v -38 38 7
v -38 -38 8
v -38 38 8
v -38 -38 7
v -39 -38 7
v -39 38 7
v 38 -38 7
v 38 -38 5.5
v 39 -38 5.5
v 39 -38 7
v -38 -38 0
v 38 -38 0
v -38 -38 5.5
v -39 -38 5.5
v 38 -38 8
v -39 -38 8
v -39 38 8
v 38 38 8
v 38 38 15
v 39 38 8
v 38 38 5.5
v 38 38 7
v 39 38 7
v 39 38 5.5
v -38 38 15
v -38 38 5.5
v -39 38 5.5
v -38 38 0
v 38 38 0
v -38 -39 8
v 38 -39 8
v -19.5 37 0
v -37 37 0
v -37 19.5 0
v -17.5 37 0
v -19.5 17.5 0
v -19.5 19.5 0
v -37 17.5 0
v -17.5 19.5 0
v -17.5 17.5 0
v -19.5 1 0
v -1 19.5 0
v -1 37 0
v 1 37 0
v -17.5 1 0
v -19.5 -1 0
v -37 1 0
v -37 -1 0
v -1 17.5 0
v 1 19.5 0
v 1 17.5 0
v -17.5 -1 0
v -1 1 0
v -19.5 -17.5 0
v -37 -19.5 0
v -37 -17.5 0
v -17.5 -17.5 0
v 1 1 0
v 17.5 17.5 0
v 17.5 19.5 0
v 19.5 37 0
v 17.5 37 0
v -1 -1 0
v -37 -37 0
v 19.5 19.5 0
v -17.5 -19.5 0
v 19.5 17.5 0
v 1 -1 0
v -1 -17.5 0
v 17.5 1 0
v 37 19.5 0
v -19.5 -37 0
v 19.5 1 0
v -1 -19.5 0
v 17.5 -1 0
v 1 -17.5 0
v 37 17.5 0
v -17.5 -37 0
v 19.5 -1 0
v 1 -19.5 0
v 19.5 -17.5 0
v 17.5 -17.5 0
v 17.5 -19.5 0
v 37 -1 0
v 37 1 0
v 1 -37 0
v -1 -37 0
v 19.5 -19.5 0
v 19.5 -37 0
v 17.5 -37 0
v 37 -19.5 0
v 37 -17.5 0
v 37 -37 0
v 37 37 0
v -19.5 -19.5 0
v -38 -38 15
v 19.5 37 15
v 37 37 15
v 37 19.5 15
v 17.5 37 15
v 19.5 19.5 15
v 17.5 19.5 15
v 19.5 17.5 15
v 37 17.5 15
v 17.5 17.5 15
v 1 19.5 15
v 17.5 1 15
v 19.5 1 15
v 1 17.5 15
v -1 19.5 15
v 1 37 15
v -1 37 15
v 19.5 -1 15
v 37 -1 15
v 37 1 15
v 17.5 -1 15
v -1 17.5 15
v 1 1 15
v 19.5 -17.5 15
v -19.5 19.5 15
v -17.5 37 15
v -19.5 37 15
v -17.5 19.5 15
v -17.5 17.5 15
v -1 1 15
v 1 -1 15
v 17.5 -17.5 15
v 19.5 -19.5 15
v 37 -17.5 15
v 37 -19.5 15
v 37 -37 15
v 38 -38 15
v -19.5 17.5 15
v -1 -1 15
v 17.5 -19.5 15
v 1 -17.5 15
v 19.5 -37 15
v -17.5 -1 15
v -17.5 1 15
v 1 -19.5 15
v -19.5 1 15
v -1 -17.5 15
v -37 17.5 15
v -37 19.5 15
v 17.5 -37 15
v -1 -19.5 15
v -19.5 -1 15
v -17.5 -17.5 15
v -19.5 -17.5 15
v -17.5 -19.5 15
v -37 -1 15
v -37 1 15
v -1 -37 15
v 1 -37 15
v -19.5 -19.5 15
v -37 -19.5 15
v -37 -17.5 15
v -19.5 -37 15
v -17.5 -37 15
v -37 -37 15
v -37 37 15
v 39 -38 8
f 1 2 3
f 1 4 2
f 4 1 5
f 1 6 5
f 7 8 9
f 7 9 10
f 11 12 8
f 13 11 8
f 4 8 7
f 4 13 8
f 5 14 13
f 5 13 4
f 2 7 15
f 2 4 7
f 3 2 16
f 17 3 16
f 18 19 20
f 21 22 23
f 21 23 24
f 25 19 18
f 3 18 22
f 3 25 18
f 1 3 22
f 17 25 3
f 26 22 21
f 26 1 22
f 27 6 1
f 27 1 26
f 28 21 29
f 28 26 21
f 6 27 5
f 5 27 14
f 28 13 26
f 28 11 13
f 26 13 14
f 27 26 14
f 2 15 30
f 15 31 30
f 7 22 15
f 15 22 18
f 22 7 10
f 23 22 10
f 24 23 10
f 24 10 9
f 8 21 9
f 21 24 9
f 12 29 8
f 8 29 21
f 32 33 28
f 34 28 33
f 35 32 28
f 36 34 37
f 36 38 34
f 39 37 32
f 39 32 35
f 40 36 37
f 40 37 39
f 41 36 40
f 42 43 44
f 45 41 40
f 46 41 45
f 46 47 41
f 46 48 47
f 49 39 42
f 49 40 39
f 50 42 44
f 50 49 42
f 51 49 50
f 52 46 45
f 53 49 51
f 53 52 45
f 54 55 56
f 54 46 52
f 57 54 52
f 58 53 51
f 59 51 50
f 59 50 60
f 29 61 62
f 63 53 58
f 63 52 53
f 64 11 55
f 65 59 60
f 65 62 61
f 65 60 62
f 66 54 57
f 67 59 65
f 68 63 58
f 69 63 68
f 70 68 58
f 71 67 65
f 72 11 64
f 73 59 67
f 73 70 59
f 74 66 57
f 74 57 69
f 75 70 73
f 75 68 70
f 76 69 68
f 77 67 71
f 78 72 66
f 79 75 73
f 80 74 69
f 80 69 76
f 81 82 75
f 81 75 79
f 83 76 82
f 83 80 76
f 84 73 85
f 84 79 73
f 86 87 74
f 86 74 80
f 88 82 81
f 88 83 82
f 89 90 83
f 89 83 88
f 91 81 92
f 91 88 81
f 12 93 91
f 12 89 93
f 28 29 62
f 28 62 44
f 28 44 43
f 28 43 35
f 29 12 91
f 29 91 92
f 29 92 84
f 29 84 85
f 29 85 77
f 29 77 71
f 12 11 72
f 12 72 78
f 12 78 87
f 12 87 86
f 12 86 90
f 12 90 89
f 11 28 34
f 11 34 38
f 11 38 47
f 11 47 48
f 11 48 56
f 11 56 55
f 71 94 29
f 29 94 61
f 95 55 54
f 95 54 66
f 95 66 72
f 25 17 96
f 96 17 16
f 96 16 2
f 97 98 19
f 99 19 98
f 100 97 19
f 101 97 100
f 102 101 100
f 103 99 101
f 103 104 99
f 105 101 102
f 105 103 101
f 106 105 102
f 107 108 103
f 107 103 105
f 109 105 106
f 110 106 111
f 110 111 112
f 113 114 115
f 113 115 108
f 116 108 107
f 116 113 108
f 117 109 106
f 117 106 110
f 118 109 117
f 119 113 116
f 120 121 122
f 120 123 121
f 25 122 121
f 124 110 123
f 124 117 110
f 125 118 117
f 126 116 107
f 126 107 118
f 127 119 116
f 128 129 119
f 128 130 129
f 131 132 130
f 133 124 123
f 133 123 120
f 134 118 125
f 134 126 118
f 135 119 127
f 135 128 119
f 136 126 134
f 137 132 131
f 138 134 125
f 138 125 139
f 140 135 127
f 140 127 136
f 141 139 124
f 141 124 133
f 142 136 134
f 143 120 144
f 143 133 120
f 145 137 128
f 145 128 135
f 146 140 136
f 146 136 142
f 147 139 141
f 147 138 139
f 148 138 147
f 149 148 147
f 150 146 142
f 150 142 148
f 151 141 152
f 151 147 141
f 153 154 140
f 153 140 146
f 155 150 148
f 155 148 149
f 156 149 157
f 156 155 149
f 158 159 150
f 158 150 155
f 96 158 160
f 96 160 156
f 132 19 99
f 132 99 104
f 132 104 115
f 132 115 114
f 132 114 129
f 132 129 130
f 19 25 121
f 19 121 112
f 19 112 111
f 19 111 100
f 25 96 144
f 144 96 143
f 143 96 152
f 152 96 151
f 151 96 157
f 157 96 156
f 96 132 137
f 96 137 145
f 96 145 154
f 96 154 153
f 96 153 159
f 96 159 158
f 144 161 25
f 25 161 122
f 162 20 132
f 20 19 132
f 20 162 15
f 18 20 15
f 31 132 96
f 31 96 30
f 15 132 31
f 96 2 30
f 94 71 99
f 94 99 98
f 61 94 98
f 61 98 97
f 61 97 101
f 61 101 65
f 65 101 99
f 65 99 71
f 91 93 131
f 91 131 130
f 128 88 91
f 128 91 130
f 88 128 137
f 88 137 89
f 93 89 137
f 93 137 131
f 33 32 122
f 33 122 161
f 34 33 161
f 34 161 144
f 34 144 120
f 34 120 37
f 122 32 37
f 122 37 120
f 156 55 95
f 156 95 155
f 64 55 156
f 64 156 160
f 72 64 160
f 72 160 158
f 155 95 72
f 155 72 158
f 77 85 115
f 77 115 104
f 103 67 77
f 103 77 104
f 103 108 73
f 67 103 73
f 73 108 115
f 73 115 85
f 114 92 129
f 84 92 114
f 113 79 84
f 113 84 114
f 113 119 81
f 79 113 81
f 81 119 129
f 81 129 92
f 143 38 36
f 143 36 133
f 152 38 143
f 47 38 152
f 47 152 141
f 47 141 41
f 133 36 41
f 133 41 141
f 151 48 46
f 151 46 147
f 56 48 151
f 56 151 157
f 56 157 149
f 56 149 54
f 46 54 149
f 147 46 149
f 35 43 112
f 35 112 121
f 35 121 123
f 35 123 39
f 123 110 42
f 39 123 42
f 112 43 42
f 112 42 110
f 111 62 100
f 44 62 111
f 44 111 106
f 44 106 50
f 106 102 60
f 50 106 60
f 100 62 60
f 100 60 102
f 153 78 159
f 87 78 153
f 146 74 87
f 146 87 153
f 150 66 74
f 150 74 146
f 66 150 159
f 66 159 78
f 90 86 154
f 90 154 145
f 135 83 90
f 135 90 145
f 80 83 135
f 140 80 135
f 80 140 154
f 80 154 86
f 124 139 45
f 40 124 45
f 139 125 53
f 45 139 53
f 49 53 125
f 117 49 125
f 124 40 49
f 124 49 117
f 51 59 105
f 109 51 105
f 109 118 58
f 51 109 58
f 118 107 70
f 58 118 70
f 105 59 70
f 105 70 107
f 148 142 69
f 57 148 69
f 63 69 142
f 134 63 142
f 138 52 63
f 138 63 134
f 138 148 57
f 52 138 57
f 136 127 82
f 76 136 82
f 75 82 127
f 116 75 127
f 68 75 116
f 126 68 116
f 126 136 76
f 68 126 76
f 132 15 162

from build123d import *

# Parameters (mm, degrees)
SKETCH_W     = 76
SKETCH_H     = 76
SKETCH_W_2   = 74
SKETCH_H_2   = 74
PAD_DEPTH    = 15
PAD001_DEPTH = 15
PAD002_DEPTH = 76
PAD004_DEPTH = 76


with BuildPart() as part:
    # Sketch → Pad (new body)
    with BuildSketch(Plane.XY):
        Rectangle(SKETCH_W, SKETCH_H)
        Rectangle(SKETCH_W_2, SKETCH_H_2, mode=Mode.SUBTRACT)
    extrude(amount=PAD_DEPTH)

    # Sketch001 → Pad001 (join)
    with BuildSketch(Plane.XY):
        Polygon((-17.5, 37), (-17.5, 12.333333), (-17.5, -37), (-19.5, -37), (-19.5, 12.333333), (-19.5, 37), align=None)
        Polygon((-37, 19.5), (-12.333333, 19.5), (37, 19.5), (37, 17.5), (-12.333333, 17.5), (-37, 17.5), align=None)
        Polygon((19.5, 37), (19.5, 12.333333), (19.5, -37), (17.5, -37), (17.5, 12.333333), (17.5, 37), align=None)
        Polygon((-37, -17.5), (-12.333333, -17.5), (37, -17.5), (37, -19.5), (-12.333333, -19.5), (-37, -19.5), align=None)
        Polygon((-1, -37), (-1, -12.333333), (-1, 37), (1, 37), (1, -12.333333), (1, -37), align=None)
        Polygon((-37, 1), (-12.333333, 1), (37, 1), (37, -1), (-12.333333, -1), (-37, -1), align=None)
    extrude(amount=PAD001_DEPTH)

    # Sketch002 (on Face1 of Pad001) → Pad002 (join)
    with BuildSketch(Plane.XZ.offset(38)):
        Polygon((-39, 8), (-38, 8), (-38, 7), (-39, 7), (-39, 5.5), (-38, 5.5), (-38, 0), (-37, 0), (-37, 15), (-38, 15), align=None)
        Polygon((38, 8.000002), (39, 8.000002), (38, 15.000002), (37, 15), (37, 0), (38, 0), (38, 5.500002), (39, 5.500002), (39, 7.000002), (38, 7.000002), align=None)
    extrude(amount=-PAD002_DEPTH)

    # Sketch004 (on Face4 of Pad) → Pad004 (join)
    with BuildSketch(Plane(origin=(-38, 0, 0), x_dir=(0, -1, 0), z_dir=(-1, 0, 0))):
        Polygon((38, 15), (37, 15), (37, 8), (39, 8), align=None)
    extrude(amount=-PAD004_DEPTH)


solid = part.part
